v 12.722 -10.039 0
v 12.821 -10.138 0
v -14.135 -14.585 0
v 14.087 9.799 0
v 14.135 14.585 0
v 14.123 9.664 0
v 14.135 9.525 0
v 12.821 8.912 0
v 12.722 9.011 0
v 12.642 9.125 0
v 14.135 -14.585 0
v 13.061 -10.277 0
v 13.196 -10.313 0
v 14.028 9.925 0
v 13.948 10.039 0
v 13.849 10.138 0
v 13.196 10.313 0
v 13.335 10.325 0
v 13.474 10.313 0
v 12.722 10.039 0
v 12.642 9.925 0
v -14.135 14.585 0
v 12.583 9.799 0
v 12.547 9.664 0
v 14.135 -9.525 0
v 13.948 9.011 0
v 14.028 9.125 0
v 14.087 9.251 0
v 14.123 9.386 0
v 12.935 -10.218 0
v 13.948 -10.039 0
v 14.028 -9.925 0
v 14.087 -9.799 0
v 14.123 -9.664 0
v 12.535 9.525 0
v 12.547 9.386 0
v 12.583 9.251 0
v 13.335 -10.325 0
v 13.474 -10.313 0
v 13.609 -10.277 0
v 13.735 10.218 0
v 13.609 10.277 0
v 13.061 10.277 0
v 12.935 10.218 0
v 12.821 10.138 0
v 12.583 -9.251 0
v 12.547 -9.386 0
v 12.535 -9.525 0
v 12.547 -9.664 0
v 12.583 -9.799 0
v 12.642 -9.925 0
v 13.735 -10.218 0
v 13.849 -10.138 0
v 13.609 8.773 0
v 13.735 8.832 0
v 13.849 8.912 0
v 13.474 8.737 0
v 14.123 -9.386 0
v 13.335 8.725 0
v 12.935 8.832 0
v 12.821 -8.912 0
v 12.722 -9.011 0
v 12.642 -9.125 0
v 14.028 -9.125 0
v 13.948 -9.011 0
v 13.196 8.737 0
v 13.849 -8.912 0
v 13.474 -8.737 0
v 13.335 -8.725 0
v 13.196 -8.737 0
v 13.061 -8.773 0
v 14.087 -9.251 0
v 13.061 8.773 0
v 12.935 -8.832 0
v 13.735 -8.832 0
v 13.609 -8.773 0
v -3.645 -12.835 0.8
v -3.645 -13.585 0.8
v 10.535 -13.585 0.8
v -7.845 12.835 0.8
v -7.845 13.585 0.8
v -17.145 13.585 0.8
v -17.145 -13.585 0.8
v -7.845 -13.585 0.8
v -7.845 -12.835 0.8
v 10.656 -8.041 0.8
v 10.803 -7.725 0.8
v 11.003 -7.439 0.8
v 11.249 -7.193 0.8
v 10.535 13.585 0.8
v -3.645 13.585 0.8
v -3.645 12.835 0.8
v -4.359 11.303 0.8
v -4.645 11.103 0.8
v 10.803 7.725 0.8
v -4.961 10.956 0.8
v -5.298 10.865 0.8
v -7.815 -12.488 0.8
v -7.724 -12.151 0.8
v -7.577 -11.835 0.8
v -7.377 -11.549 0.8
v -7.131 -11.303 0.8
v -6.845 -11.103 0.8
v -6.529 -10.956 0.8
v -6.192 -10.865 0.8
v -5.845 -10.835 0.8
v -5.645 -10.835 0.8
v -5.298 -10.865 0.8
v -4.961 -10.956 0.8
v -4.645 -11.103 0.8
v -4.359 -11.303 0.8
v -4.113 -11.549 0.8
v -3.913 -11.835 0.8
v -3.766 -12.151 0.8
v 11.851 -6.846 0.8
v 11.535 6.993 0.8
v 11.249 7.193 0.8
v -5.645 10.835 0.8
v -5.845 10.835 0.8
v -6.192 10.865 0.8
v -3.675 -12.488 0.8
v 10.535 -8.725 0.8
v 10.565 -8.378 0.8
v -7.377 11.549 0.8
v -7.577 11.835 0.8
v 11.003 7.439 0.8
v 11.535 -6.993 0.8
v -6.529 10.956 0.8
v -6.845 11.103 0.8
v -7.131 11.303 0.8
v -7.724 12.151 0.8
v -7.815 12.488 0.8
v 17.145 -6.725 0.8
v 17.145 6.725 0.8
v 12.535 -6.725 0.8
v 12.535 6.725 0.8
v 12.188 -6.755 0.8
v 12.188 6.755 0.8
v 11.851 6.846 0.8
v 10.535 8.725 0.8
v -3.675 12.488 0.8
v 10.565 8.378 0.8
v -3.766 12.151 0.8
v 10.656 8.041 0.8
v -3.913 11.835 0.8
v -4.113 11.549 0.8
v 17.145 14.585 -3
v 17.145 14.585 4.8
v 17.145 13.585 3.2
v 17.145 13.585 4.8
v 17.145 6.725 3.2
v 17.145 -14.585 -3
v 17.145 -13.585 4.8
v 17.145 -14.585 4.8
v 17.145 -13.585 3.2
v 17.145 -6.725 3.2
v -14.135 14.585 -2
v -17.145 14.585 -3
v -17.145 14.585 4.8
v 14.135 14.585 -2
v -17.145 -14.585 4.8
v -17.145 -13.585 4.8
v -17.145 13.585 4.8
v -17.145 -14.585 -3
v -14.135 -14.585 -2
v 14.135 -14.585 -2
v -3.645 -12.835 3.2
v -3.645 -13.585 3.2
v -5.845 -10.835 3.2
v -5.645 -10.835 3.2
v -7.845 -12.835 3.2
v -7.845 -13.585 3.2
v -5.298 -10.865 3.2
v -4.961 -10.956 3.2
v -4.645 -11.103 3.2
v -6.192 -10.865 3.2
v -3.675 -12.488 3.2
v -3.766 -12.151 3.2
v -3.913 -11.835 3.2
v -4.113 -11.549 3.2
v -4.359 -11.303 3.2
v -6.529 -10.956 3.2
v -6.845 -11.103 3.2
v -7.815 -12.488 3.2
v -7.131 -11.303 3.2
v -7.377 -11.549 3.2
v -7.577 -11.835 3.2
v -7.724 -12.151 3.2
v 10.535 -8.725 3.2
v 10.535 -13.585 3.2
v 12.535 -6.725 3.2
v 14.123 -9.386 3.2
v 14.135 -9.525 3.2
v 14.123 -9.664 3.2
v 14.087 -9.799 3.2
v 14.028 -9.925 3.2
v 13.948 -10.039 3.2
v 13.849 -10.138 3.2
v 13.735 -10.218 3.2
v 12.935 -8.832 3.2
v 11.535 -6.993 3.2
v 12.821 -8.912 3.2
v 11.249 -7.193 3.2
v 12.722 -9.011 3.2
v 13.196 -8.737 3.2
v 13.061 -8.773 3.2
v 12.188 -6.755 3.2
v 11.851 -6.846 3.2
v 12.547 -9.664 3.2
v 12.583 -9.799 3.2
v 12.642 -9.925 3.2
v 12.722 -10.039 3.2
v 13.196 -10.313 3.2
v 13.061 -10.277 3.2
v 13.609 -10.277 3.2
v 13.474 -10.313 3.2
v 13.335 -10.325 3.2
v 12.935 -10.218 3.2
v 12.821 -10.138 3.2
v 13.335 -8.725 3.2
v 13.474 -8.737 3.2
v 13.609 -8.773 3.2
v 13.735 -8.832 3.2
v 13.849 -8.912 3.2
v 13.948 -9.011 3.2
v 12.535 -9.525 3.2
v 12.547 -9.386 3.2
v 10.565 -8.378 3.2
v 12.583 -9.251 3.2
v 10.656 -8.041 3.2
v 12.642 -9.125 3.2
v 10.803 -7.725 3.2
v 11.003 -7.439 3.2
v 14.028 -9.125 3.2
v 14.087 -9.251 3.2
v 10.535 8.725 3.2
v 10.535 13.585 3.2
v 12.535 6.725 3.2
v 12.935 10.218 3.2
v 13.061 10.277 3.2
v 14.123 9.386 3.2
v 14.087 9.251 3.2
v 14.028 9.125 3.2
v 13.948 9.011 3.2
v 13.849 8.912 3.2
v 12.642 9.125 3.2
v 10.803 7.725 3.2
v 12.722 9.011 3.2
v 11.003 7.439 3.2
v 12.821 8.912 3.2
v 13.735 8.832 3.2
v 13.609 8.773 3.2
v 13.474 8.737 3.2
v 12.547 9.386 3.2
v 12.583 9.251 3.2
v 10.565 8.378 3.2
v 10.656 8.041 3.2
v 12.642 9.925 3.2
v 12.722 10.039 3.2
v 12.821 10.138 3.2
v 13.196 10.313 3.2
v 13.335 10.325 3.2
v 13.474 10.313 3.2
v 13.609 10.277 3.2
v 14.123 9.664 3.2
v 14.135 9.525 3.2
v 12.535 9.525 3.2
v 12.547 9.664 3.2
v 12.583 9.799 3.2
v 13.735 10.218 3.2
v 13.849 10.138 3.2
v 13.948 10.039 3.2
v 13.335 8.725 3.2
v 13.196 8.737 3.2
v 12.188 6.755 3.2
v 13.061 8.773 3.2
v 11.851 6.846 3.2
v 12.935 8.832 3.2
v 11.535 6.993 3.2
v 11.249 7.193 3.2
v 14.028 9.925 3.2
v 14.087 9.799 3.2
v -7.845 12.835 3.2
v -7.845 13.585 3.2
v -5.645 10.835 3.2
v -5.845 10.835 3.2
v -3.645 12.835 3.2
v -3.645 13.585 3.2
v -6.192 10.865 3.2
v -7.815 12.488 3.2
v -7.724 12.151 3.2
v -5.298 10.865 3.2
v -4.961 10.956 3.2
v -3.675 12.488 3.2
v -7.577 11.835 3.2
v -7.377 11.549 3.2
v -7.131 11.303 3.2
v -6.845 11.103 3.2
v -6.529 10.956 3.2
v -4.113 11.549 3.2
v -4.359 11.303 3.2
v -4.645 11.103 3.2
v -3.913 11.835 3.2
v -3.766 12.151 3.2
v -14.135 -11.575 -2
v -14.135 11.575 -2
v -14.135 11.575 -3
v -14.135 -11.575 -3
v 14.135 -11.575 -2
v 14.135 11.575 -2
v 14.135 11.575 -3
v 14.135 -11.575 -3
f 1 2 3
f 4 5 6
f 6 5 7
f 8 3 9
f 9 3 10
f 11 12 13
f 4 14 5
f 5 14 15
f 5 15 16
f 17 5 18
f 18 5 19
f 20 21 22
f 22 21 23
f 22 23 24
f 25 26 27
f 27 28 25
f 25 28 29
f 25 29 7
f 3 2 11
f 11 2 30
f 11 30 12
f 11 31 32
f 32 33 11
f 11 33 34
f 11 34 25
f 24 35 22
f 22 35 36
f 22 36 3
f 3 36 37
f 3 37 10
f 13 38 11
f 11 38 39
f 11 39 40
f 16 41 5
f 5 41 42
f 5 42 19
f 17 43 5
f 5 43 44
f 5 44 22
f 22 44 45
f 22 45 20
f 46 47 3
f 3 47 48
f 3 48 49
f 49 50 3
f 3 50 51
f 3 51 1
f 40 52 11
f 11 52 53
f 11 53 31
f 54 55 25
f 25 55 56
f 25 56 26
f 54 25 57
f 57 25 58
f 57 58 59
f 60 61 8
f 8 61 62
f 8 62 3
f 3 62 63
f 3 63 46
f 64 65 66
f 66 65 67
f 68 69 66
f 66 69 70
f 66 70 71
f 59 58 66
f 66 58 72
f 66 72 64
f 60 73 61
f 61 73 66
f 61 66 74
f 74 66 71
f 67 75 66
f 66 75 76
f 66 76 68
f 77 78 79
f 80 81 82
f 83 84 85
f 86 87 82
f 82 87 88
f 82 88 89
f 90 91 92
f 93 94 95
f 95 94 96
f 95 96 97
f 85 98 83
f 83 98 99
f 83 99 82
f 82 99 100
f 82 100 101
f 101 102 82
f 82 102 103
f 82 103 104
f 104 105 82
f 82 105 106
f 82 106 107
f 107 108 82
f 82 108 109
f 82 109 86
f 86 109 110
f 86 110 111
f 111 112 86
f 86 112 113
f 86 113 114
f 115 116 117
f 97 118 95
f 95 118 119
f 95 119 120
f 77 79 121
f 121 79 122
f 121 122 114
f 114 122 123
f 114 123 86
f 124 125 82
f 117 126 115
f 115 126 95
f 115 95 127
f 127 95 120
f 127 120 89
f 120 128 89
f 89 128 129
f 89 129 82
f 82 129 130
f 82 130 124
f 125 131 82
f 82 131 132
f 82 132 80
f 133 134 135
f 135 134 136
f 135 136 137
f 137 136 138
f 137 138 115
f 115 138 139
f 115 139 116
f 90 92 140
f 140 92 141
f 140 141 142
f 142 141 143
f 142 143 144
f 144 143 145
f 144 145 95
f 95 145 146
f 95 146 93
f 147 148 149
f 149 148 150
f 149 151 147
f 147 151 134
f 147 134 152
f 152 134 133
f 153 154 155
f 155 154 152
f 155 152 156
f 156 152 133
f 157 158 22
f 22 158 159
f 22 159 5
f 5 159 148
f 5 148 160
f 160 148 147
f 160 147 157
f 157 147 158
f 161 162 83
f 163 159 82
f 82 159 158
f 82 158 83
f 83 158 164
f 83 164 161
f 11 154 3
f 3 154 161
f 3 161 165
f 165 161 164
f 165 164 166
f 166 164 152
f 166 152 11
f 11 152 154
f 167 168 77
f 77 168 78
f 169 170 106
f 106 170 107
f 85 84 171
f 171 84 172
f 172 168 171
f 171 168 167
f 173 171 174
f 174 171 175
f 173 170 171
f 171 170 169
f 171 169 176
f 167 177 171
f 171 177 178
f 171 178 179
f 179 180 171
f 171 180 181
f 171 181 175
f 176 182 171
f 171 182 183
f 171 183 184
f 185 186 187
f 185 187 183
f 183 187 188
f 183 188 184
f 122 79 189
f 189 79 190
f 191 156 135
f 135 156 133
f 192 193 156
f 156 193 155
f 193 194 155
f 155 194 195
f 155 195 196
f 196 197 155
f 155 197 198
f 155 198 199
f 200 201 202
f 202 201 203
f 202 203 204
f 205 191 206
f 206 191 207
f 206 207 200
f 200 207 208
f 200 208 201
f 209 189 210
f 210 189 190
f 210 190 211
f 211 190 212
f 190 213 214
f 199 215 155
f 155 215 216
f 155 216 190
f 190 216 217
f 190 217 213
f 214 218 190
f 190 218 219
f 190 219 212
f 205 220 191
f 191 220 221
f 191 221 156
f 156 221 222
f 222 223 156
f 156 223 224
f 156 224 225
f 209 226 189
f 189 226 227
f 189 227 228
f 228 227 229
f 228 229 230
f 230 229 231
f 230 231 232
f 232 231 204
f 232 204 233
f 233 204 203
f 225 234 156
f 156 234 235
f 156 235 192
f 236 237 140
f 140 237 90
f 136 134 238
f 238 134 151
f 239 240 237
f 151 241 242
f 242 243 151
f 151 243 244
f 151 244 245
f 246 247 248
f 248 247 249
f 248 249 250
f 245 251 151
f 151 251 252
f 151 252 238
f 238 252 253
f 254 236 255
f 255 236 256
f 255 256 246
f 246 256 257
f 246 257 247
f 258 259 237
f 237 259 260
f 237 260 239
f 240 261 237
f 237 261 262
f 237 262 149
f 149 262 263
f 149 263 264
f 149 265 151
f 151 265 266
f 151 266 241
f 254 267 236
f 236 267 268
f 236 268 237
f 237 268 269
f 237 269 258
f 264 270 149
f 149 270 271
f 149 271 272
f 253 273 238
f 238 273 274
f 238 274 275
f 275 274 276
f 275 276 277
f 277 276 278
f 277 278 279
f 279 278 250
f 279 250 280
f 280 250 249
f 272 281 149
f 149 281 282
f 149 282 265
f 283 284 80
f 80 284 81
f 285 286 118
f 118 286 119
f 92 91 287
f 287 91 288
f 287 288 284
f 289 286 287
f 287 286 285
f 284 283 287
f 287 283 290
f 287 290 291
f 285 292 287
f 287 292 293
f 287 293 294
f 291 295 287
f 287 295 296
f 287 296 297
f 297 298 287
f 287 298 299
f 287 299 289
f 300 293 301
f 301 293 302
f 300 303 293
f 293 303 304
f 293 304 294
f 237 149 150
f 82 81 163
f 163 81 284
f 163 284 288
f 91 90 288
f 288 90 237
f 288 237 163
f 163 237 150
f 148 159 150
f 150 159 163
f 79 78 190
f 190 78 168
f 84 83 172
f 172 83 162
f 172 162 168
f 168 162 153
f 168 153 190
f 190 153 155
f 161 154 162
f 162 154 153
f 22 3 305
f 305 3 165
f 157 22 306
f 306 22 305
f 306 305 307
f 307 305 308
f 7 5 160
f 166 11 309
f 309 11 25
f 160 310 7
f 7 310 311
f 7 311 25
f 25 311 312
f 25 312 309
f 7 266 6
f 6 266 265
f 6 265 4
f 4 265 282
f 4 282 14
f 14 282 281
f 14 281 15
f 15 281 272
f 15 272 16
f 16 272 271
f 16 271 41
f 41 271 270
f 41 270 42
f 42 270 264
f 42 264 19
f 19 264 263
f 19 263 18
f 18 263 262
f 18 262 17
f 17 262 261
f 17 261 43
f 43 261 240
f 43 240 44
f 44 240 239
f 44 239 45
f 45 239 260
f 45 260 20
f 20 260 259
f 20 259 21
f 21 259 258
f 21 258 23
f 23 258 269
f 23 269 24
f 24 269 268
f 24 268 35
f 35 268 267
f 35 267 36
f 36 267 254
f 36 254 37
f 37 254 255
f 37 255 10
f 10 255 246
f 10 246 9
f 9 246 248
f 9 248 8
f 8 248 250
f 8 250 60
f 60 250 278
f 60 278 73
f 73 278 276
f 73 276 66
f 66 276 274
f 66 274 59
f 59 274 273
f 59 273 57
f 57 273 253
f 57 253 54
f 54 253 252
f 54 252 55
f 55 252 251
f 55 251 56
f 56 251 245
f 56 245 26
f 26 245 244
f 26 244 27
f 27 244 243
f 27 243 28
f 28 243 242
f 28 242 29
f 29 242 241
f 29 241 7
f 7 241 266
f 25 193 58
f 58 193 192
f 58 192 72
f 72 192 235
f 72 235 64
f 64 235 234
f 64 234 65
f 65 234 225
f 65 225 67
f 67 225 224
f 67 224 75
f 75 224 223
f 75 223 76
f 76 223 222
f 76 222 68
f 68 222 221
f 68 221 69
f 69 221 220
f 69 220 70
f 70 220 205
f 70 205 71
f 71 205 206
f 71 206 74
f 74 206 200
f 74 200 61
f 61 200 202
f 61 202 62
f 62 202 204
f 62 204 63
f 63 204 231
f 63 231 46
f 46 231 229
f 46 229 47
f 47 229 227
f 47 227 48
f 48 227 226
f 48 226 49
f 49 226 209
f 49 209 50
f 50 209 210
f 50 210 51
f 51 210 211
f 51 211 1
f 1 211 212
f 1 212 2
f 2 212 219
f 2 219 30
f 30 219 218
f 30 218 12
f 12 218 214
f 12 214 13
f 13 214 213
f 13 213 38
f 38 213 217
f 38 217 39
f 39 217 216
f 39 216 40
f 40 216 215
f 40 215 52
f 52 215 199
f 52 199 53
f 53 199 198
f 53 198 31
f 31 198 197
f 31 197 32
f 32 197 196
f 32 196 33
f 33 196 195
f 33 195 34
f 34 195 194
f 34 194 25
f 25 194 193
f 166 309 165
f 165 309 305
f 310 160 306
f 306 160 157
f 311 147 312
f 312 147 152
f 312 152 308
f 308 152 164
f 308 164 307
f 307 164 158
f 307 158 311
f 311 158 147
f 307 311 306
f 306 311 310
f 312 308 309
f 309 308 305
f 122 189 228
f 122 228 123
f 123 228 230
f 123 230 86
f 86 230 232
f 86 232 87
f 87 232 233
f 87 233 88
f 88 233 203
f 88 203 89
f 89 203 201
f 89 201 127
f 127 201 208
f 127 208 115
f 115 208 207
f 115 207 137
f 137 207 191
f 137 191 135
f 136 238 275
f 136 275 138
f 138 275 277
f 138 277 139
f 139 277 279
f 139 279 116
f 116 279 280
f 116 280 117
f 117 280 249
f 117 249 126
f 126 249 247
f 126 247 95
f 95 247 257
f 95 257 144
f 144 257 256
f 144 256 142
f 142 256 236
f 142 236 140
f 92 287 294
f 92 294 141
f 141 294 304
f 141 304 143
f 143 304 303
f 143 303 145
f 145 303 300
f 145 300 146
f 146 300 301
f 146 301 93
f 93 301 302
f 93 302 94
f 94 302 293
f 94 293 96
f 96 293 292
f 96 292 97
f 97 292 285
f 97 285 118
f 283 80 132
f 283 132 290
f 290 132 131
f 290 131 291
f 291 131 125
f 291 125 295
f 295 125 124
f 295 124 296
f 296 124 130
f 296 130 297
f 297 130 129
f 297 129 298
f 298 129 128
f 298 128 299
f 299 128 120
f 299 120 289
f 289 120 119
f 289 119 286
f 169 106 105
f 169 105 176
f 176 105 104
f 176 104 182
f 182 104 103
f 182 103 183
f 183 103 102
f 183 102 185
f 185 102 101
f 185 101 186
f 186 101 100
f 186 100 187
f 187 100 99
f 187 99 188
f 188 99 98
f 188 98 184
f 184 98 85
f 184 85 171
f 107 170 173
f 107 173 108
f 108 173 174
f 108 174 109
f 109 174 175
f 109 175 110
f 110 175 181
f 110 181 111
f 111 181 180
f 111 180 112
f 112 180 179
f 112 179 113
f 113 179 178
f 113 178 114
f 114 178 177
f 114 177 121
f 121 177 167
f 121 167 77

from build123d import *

# Parameters (mm, degrees)
SKETCH2_W               = 29.17
SKETCH2_H               = 34.29
BOSS_EXTRUDE1_DEPTH     = 0.8
SKETCH4_W               = 4.2
SKETCH4_H               = 2.75
SKETCH4_W_2             = 6.61
SKETCH4_H_2             = 6.86
BOSS_EXTRUDE3_DEPTH     = 2.4
SKETCH5_W               = 34.29
SKETCH5_H               = 1
BOSS_EXTRUDE5_DEPTH     = 4
SKETCH6_W               = 3.01
SKETCH6_H               = 29.17
BOSS_EXTRUDE6_DEPTH     = 2
CUT_EXTRUDE1_DEPTH      = 24.10223474
CUT_EXTRUDE1_DEPTH_BACK = 24.10223474
SKETCH8_R               = 0.8
SKETCH9_W               = 34.29
SKETCH9_H               = 29.17
SKETCH9_W_2             = 28.27
SKETCH9_H_2             = 23.15
BOSS_EXTRUDE8_DEPTH     = 1
FILLET1_R               = 2


with BuildPart() as part:
    # Sketch2 → Boss-Extrude1 (new body)
    with BuildSketch(Plane(origin=(0, 0, 0), x_dir=(0, 1, 0), z_dir=(0, 0, 1))):
        Rectangle(SKETCH2_W, SKETCH2_H)
    extrude(amount=BOSS_EXTRUDE1_DEPTH)

    # Sketch4 → Boss-Extrude3 (add)
    with BuildSketch(Plane.XY.offset(0.8)):
        with Locations((-5.745, -12.21)):
            Rectangle(SKETCH4_W, SKETCH4_H)
        with Locations((13.84, -10.155)):
            Rectangle(SKETCH4_W_2, SKETCH4_H_2)
        with Locations((13.84, 10.155)):
            Rectangle(SKETCH4_W_2, SKETCH4_H_2)
        with Locations((-5.745, 12.21)):
            Rectangle(SKETCH4_W, SKETCH4_H)
    extrude(amount=BOSS_EXTRUDE3_DEPTH)

    # Sketch5 → Boss-Extrude5 (add)
    with BuildSketch(Plane.XY.offset(0.8)):
        with Locations((0, 14.085)):
            Rectangle(SKETCH5_W, SKETCH5_H)
        with Locations((0, -14.085)):
            Rectangle(SKETCH5_W, SKETCH5_H)
    extrude(amount=BOSS_EXTRUDE5_DEPTH)

    # Sketch6 → Boss-Extrude6 (add)
    with BuildSketch(Plane(origin=(0, 0, 0), x_dir=(1, 0, 0), z_dir=(0, 0, -1))):
        with Locations((15.64, 0)):
            Rectangle(SKETCH6_W, SKETCH6_H)
        with Locations((-15.64, 0)):
            Rectangle(SKETCH6_W, SKETCH6_H)
    extrude(amount=BOSS_EXTRUDE6_DEPTH)

    # Sketch8 → Cut-Extrude1 (cut, two sides: drawn at the far end of the back side and taken through both)
    with BuildSketch(Plane.XY.offset(3.2).offset(-CUT_EXTRUDE1_DEPTH_BACK)):
        with Locations((13.335, 9.525)):
            Circle(SKETCH8_R)
        with Locations((13.335, -9.525)):
            Circle(SKETCH8_R)
    extrude(amount=CUT_EXTRUDE1_DEPTH + CUT_EXTRUDE1_DEPTH_BACK, mode=Mode.SUBTRACT)

    # Sketch9 → Boss-Extrude8 (add)
    with BuildSketch(Plane(origin=(0, 0, -2), x_dir=(1, 0, 0), z_dir=(0, 0, -1))):
        Rectangle(SKETCH9_W, SKETCH9_H)
        Rectangle(SKETCH9_W_2, SKETCH9_H_2, mode=Mode.SUBTRACT)
    extrude(amount=BOSS_EXTRUDE8_DEPTH)

    # Fillet1
    fillet1_edges = [part.edges().sort_by_distance(p)[0] for p in [
        (-7.845, 10.835, 2),
        (-3.645, 10.835, 2),
        (10.535, 6.725, 2),
        (10.535, -6.725, 2),
        (-3.645, -10.835, 2),
        (-7.845, -10.835, 2),
    ]]
    fillet(fillet1_edges, radius=FILLET1_R)


solid = part.part
